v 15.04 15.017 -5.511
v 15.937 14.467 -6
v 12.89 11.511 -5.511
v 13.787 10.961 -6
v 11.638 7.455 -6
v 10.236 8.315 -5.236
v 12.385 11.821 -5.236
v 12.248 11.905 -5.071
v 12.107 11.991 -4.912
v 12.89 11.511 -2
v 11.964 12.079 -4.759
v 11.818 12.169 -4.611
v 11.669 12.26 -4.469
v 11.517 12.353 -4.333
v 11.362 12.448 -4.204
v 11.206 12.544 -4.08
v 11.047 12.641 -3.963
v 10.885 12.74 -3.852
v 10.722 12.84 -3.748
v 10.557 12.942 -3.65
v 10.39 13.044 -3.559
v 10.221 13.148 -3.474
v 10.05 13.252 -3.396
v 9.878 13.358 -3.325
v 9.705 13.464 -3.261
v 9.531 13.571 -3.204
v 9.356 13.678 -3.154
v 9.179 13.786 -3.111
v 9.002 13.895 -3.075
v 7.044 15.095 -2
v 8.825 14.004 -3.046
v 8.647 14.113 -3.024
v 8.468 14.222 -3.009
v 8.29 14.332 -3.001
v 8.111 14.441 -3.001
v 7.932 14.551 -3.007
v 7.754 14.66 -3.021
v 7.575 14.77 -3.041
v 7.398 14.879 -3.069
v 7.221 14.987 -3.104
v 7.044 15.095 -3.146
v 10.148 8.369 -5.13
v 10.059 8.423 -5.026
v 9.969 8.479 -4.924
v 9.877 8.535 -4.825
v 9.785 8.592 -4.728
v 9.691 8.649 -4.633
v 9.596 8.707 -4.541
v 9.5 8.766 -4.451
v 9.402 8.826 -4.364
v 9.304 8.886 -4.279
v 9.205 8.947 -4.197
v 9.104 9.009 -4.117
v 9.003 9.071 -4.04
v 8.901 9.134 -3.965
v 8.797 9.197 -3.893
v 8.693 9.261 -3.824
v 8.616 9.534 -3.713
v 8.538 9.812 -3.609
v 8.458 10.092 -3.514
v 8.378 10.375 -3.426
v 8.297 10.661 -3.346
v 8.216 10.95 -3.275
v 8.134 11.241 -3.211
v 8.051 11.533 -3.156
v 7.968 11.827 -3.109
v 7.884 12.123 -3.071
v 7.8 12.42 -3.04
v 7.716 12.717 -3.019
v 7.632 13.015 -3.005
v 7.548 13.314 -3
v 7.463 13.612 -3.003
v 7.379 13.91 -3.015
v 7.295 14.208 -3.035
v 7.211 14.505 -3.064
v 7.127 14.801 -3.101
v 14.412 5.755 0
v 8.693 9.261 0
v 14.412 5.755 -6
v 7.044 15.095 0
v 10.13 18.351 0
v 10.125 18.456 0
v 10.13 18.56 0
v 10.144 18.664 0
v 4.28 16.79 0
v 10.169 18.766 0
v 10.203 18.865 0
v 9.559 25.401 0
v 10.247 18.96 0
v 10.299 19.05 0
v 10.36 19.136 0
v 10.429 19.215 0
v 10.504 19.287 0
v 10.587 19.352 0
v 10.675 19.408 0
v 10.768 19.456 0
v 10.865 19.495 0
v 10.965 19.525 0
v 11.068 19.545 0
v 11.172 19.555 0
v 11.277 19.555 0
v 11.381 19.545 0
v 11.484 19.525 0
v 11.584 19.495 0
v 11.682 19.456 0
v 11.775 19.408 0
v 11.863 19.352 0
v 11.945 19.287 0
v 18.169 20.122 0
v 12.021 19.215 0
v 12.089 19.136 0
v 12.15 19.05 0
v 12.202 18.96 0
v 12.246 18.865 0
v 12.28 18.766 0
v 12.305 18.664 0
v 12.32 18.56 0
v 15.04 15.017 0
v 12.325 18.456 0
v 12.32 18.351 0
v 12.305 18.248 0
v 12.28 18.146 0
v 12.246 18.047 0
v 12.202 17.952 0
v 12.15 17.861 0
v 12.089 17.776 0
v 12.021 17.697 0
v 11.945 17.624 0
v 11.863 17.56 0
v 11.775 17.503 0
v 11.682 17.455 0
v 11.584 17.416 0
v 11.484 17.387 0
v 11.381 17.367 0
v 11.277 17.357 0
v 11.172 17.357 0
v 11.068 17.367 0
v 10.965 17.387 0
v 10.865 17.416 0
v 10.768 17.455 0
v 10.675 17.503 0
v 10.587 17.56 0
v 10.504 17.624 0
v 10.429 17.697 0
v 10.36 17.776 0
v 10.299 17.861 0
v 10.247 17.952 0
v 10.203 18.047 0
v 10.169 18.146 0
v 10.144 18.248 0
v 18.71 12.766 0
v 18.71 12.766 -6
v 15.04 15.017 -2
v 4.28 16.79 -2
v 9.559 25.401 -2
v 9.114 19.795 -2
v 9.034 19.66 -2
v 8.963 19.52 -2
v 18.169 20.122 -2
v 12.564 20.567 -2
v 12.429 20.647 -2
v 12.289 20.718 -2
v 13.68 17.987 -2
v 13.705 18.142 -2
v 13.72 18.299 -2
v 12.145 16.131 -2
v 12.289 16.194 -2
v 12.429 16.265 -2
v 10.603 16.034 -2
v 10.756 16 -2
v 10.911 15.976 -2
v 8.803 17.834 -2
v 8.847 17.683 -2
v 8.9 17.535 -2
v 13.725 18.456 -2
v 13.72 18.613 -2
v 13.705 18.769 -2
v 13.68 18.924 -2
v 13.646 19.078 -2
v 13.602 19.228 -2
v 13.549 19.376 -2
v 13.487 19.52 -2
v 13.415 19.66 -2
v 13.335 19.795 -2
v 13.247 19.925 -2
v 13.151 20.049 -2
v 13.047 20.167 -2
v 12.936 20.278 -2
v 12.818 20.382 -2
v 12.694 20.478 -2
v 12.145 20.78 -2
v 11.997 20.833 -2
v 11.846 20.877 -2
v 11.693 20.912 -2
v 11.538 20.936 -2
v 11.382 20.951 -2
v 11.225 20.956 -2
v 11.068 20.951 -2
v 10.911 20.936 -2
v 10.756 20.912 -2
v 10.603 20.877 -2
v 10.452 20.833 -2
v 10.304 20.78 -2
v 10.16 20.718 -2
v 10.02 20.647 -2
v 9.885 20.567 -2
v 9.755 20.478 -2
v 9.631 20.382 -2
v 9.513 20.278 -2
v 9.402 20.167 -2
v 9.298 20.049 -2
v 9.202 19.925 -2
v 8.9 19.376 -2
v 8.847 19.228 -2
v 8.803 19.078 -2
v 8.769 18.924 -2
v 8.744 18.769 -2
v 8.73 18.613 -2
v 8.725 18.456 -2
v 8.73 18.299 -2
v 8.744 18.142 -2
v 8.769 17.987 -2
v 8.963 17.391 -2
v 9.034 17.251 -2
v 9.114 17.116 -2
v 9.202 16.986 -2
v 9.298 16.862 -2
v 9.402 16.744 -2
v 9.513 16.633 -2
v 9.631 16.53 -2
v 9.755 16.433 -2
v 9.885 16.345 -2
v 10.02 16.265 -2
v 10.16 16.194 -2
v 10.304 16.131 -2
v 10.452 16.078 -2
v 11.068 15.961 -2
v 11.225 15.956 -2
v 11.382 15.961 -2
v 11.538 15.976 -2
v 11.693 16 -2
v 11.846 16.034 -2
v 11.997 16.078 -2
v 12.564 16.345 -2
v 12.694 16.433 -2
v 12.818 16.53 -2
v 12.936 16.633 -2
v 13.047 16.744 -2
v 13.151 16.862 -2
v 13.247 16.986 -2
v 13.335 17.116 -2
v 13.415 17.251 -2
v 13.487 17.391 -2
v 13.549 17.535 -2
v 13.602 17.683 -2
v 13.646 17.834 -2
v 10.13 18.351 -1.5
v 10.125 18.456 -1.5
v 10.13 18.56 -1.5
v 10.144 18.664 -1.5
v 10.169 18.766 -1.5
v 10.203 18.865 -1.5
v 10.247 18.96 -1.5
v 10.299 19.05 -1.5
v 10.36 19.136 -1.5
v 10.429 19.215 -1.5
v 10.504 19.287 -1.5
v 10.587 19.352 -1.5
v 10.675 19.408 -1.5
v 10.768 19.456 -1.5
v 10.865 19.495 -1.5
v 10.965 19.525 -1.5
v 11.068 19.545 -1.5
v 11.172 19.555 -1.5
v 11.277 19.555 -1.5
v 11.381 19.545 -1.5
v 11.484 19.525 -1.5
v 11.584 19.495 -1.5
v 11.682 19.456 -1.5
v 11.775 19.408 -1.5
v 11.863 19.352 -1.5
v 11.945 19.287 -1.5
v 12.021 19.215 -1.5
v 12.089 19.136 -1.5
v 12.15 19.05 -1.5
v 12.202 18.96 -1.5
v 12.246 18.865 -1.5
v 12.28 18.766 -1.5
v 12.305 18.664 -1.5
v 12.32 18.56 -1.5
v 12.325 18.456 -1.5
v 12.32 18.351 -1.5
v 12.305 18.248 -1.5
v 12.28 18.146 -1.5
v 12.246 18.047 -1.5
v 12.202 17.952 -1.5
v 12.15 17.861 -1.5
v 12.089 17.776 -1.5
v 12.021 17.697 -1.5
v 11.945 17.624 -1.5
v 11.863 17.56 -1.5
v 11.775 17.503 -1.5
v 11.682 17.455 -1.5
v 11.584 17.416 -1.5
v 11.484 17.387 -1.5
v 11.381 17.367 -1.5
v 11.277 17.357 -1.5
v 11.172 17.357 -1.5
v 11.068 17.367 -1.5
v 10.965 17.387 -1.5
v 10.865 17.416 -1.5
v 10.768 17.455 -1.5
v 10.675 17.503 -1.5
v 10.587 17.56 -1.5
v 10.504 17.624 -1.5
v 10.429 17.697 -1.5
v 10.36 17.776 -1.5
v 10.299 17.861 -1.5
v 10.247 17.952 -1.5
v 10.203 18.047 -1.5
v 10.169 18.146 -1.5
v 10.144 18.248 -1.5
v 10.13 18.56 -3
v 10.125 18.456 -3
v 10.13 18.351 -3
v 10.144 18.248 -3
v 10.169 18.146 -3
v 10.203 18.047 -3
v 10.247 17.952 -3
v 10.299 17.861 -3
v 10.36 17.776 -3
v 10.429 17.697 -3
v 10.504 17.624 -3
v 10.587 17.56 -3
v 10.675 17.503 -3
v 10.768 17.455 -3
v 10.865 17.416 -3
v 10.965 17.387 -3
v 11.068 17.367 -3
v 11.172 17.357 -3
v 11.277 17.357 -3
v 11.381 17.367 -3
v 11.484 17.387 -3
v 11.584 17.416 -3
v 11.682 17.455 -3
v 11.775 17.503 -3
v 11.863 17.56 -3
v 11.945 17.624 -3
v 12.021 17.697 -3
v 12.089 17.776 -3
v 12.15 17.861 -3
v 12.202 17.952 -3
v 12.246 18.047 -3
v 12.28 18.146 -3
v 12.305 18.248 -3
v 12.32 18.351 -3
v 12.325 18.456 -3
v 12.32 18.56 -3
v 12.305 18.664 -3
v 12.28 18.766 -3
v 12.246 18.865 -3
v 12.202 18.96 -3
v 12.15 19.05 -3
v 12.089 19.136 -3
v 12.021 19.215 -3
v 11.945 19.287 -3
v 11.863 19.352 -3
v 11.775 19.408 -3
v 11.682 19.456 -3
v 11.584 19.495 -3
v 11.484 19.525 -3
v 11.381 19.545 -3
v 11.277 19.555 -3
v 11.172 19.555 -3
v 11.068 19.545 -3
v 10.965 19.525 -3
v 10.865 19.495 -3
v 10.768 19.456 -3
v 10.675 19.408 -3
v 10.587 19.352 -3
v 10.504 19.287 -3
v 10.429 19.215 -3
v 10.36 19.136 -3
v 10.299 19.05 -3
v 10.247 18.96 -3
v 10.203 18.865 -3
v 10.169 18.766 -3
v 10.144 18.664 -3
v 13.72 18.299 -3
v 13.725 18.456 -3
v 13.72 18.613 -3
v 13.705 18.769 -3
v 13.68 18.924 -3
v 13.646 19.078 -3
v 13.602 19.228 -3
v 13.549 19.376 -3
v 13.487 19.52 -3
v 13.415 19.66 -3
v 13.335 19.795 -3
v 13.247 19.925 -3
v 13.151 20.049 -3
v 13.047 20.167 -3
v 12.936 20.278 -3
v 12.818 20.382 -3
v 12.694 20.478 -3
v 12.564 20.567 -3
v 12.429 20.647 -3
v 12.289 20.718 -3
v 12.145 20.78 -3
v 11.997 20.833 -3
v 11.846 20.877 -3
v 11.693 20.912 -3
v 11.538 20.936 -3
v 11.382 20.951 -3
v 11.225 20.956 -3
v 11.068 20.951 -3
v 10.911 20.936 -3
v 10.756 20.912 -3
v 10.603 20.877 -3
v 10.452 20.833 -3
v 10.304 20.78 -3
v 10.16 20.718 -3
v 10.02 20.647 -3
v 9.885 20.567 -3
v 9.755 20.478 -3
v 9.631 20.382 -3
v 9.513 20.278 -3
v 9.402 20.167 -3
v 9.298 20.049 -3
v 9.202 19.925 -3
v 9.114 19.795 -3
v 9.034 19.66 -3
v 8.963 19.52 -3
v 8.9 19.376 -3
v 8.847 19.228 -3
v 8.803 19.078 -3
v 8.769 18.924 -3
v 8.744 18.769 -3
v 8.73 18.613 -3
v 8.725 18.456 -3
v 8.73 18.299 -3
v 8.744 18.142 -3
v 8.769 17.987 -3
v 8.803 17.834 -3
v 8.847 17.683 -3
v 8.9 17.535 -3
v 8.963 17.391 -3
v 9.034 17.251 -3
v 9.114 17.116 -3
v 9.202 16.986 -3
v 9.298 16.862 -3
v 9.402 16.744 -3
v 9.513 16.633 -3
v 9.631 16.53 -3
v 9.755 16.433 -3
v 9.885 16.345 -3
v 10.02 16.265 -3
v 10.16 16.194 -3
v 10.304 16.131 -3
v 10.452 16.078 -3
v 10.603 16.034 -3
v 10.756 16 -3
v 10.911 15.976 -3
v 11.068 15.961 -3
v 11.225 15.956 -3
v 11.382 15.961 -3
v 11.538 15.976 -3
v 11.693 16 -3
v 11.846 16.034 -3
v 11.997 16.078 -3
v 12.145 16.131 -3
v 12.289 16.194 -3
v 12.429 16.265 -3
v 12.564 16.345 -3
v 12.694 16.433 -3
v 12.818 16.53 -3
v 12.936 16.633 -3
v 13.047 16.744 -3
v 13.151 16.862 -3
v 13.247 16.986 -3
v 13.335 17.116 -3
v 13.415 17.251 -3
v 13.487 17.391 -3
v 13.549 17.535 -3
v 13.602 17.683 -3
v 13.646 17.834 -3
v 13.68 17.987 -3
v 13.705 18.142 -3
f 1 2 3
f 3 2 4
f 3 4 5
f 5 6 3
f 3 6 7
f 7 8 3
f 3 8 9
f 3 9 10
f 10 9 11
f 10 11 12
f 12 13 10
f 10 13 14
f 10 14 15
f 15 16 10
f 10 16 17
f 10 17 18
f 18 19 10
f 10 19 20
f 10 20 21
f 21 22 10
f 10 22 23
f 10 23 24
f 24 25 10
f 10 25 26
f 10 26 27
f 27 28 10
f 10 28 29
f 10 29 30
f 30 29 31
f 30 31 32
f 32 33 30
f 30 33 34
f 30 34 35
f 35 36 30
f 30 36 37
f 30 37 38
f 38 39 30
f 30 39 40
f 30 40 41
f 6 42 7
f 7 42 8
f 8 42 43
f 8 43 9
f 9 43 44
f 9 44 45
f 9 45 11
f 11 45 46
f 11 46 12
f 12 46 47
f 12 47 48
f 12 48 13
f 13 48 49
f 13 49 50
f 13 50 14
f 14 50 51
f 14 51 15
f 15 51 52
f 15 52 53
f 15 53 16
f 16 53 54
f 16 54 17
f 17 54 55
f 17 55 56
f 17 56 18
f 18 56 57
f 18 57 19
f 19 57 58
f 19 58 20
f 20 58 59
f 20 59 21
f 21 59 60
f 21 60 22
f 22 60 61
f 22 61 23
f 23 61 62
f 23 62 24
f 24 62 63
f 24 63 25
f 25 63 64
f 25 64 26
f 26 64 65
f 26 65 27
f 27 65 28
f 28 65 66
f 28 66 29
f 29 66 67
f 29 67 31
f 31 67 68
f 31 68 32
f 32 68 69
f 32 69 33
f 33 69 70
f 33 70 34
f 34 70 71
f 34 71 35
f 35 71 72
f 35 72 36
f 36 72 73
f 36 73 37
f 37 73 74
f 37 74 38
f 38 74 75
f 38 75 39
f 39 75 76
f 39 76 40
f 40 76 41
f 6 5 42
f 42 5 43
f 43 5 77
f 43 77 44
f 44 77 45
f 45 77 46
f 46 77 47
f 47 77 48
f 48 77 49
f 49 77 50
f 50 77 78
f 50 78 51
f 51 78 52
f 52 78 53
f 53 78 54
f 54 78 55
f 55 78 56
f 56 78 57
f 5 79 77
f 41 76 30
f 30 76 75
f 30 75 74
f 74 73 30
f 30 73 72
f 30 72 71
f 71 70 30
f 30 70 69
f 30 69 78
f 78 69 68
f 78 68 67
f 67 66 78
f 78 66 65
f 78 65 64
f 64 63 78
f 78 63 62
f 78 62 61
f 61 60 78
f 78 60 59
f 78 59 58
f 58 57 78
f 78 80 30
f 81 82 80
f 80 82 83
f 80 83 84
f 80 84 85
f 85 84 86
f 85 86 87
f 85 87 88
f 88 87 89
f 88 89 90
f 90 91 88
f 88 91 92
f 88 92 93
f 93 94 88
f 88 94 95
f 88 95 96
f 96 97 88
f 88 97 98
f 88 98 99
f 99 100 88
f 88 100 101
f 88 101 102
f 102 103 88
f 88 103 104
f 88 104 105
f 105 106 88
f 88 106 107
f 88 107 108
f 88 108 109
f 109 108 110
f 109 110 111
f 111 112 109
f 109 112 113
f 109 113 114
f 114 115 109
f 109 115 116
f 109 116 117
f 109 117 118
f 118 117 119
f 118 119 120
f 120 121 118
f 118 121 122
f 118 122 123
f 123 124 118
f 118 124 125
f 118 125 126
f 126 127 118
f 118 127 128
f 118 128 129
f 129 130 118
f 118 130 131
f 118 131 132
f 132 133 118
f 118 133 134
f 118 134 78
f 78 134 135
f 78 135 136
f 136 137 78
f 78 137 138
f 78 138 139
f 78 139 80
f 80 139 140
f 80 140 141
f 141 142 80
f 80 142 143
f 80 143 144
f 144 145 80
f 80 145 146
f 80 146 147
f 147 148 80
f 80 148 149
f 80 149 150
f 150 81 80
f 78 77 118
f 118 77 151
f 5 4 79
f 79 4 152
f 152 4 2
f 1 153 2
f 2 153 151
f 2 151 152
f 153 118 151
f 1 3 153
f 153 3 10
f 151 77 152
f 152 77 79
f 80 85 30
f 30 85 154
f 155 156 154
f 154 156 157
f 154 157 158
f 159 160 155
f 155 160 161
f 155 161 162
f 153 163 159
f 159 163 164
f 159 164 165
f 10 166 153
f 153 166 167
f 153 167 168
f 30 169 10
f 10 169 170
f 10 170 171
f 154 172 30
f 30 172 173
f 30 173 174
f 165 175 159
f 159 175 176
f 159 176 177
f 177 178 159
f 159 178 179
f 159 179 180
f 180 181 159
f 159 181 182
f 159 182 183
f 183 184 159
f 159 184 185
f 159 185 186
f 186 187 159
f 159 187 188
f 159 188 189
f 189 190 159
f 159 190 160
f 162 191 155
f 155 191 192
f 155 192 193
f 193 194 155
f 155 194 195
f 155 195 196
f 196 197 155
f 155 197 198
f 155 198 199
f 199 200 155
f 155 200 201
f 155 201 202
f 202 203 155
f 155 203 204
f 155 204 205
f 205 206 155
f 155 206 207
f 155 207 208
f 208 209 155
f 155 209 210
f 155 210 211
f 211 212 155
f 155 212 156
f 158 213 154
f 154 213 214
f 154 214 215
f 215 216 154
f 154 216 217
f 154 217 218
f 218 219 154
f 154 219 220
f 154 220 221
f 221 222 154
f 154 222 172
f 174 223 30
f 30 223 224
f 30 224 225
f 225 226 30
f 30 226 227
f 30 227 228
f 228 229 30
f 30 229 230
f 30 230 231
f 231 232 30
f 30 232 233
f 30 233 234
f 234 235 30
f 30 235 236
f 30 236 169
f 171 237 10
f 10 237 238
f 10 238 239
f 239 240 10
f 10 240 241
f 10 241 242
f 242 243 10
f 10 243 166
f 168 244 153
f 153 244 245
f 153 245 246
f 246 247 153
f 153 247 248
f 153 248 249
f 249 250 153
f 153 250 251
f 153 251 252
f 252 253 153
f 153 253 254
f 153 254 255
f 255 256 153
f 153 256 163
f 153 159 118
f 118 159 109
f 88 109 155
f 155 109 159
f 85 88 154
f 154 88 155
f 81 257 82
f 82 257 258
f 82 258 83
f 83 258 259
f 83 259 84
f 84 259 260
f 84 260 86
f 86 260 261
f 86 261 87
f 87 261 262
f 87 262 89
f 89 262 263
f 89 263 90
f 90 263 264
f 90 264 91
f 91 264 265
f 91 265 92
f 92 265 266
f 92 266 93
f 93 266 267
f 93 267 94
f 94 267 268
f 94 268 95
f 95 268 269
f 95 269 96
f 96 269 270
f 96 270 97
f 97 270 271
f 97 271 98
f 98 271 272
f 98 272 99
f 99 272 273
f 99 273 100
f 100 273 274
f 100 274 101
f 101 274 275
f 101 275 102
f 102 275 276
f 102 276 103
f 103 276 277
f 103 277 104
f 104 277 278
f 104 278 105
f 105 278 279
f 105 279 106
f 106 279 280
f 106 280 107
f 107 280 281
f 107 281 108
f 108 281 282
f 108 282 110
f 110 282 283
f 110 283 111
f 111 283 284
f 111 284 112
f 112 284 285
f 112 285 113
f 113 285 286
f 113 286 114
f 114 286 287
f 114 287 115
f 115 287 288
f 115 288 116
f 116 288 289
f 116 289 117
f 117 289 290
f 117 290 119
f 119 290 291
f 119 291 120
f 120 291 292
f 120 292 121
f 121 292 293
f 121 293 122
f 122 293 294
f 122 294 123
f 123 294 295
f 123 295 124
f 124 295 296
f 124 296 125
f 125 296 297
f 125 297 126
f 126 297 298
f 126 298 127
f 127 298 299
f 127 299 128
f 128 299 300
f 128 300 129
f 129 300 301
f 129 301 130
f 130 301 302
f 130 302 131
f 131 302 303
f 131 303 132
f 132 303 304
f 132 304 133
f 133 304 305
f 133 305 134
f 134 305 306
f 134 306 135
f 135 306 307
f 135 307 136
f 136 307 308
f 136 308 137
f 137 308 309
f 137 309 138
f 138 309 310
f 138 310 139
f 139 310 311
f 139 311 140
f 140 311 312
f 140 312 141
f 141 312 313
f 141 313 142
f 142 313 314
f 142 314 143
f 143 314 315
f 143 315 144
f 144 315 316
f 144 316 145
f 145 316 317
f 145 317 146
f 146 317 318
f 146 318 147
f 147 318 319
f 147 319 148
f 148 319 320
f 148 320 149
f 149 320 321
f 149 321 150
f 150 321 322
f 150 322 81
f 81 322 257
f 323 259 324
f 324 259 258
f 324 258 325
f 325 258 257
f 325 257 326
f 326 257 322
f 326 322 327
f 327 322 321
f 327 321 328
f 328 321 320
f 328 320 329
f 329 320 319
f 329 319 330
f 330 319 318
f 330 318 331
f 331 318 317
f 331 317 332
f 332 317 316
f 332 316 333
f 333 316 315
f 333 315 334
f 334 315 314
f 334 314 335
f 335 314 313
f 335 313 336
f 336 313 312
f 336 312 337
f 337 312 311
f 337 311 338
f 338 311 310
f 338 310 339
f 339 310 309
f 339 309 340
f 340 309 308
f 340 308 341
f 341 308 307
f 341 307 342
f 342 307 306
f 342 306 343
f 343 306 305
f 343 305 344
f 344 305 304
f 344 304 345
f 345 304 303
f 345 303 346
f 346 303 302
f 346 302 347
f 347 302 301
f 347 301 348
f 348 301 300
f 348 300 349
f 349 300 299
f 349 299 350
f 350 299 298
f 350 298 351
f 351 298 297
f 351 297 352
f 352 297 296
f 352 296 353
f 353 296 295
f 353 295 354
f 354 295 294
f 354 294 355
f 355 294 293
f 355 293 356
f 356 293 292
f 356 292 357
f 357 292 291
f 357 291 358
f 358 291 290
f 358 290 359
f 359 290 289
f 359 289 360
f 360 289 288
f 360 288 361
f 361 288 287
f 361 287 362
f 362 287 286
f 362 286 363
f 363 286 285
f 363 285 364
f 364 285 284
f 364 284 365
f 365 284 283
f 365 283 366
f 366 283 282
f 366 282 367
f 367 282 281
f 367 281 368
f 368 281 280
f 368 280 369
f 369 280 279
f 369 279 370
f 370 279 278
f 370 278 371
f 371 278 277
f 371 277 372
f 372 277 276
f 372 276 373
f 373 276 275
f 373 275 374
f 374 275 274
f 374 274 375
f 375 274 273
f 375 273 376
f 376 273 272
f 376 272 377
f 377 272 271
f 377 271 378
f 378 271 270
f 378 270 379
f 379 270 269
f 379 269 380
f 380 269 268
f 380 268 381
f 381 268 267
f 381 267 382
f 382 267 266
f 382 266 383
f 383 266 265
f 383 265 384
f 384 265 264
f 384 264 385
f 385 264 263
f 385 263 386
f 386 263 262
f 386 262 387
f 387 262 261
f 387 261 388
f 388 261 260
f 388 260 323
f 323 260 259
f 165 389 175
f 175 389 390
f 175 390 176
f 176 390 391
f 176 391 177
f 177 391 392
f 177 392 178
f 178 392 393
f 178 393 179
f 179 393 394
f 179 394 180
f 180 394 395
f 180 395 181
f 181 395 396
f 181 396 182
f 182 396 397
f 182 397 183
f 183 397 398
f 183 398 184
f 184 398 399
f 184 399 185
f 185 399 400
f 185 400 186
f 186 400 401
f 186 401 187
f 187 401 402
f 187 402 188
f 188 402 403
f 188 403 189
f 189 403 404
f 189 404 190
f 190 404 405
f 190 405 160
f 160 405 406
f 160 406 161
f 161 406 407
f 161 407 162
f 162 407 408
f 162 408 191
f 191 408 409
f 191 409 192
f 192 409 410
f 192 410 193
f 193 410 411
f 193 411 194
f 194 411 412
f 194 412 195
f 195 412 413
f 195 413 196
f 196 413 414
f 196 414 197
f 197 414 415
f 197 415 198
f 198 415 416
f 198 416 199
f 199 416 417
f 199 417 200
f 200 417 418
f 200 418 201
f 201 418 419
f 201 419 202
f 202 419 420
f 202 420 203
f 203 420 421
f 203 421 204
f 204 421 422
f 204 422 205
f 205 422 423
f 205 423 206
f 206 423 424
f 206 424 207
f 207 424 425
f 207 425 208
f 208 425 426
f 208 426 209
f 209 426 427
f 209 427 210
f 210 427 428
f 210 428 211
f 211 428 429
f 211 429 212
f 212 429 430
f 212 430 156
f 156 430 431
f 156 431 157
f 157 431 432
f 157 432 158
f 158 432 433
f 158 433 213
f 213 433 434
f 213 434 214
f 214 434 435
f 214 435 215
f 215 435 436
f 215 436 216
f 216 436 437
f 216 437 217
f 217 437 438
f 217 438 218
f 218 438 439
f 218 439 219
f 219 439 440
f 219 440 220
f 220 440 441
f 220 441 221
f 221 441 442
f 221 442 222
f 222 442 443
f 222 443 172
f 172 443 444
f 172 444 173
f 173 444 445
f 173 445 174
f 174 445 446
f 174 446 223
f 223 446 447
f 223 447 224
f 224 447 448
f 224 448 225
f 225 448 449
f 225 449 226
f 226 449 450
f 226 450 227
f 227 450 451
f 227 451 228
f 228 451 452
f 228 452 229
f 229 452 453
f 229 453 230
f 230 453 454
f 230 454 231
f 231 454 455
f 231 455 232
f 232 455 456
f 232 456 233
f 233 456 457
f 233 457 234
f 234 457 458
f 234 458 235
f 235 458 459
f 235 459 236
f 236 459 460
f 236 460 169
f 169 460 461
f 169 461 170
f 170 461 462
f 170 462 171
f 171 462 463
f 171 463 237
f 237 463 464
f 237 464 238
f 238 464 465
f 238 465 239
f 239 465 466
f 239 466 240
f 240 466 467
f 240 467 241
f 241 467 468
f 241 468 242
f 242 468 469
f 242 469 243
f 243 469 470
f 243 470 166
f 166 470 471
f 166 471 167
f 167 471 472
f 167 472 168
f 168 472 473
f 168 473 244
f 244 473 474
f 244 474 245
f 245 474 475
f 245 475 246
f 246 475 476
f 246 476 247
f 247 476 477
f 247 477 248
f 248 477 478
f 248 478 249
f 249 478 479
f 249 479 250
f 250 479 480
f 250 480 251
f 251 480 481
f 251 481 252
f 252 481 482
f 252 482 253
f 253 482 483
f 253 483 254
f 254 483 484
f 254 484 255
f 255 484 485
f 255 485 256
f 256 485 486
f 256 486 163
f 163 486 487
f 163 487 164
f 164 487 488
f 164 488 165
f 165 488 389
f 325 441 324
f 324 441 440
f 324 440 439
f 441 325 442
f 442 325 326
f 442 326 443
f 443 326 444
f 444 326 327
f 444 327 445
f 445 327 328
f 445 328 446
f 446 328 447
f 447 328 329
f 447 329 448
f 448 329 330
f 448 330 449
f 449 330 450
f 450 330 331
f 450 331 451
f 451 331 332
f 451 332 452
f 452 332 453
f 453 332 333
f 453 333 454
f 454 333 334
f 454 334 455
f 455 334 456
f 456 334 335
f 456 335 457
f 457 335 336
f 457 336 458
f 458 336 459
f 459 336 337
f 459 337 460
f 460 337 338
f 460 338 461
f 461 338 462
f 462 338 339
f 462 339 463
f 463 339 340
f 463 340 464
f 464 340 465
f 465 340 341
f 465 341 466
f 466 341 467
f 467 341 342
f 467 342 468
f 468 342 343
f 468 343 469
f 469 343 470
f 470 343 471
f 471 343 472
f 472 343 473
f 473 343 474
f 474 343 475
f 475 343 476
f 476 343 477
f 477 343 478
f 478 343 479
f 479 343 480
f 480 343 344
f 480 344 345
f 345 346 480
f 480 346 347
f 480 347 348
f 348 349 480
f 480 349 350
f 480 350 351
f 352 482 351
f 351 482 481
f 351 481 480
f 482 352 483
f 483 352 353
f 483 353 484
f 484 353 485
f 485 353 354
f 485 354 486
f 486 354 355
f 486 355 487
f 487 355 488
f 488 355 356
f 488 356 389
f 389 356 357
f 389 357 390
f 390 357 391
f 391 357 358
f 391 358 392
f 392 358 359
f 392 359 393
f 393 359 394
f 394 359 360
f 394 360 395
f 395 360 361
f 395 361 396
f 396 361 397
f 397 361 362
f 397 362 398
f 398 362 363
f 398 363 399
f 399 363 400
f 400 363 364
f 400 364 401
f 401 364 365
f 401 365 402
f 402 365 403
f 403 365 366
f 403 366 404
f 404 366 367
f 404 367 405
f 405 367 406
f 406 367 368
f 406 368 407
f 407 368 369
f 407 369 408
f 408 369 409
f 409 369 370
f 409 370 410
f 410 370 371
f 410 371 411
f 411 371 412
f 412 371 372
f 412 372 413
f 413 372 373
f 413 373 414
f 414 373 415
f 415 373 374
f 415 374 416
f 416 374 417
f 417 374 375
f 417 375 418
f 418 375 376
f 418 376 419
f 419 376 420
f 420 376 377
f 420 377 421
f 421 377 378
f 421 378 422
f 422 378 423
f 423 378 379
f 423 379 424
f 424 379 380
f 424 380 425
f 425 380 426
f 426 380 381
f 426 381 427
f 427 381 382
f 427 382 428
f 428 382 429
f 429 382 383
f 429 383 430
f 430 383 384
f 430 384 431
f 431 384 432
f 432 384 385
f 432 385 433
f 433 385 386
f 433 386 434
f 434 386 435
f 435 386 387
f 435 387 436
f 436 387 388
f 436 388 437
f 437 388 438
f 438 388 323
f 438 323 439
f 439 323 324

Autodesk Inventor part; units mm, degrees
ref_plane "YZ Plane" through (0, 0, 0) normal (1, 0, 0) x (0, 1, 0)
ref_plane "XZ Plane" through (0, 0, 0) normal (0, 1, 0) x (-1, 0, 0)
sketch "Skizze1" plane through (0, 0, 0) normal (0, 0, 1) x (1, 0, 0)
  circle A0 centre (11.2246, 18.4558) radius 0.3325 construction
  circle A1 centre (11.2246, 18.4558) radius 1.1
  circle A2 centre (11.2246, 18.4558) radius 2.5
  point P0 (0, 0)
  dimension "d0" = 2.2
  dimension "d1" = 5
ref_plane "Arbeitsebene1" through (-2.597, -2.44, -3) normal (0, 0, -1) x (0, 1, 0)
extrude "Extrusion1" add sketch "Skizze1" against normal up to surface (3 mm away)
sketch "Skizze2" plane through (11.2246, 18.4558, 0) normal (0, 0, 1) x (1, 0, 0)
  line L0 (0, 0) -> (-2.8913, -4.716) construction
  line L1 (-2.8913, -4.716) -> (3.5184, 5.7389) construction
  line L2 (0, 0) -> (3.8461, -2.358) construction
  line L3 (-6.9448, -1.6658) -> (-1.6658, 6.9448)
  line L4 (-1.6658, 6.9448) -> (6.9448, 1.6658)
  line L5 (6.9448, 1.6658) -> (1.6658, -6.9448)
  line L6 (1.6658, -6.9448) -> (-6.9448, -1.6658)
  line L7 (-6.9448, -1.6658) -> (6.9448, 1.6658) construction
  line L8 (-1.6658, 6.9448) -> (1.6658, -6.9448) construction
  point P0 (-11.2246, -18.4558)
  dimension "d4" = 10.1
  dimension "d5" = 10.1
extrude "Extrusion2" add sketch "Skizze2" against normal blind 2
sketch "Skizze3" plane through (0, 0, 0) normal (0, 0, 1) x (1, 0, 0)
  line L0 (4.2798, 16.79) -> (9.5588, 25.4006) projected
  line L1 (12.8904, 11.511) -> (4.2798, 16.79) projected
  line L2 (18.1694, 20.1216) -> (12.8904, 11.511) projected
  line L3 (9.5588, 25.4006) -> (18.1694, 20.1216) projected
  line L4 (4.8948, 11.5894) -> (14.4118, 5.7548)
  line L5 (14.4118, 5.7548) -> (18.7104, 12.7664)
  line L6 (18.7104, 12.7664) -> (15.0398, 15.0168)
  line L7 (-1.5402, 15.5346) -> (18.7104, 12.7664) construction
  line L8 (14.4118, 5.7548) -> (2.7585, 22.5462) construction
  line L9 (4.8948, 11.5894) -> (7.0442, 15.0952)
  line L10 (12.8904, 11.511) -> (4.2798, 16.79) projected
  line L11 (7.0442, 15.0952) -> (12.8904, 11.511)
  line L12 (12.8904, 11.511) -> (15.0398, 15.0168)
  line L13 (18.1694, 20.1216) -> (12.8904, 11.511) projected
  point P0 (0, 0)
  point P1 (8.5851, 14.1505)
extrude "Extrusion3" add sketch "Skizze3" against normal blind 6 contours L1 L2 L6 L5 L4 L9
sketch "Skizze4" plane through (4.8948, 11.5894, -6) normal (-0.5227, -0.8525, 0) x (0.8525, -0.5227, 0)
  line L0 (-1.036, 2.1441) -> (1.7865, 3.0085) projected
  line L1 (0, 6) -> (11.1631, 6) projected
  line L2 (0, 6) -> (0, 0) projected
  line L3 (11.1631, 0) -> (0, 0) projected
  line L4 (11.1631, 6) -> (11.1631, 0) projected
  line L5 (0.7075, 3) -> (2.9075, 3) projected
  line L6 (1.3376, -2.7865) -> (1.3376, -9.7615) projected
  ellipse E0 centre (1.3376, -6.274) end of major axis (1.3376, 3) minor radius 7.5665
  point P0 (1.8845, 6)
extrude "Extrusion4" cut sketch "Skizze4" against normal up to surface (8.2244 mm away) contours L2 E0 L0 | L2 L3 E0 | L0 E0 L3 L2
sketch "Skizze5" plane through (0, 0, 0) normal (0, 0, 1) x (1, 0, 0)
  line L0 (4.2798, 16.79) -> (9.5588, 25.4006) projected
  line L1 (7.0442, 15.0952) -> (4.2798, 16.79) projected
  line L2 (7.0442, 15.0952) -> (4.8948, 11.5894) projected
  line L3 (4.8948, 11.5894) -> (14.4118, 5.7548) projected
  line L4 (14.4118, 5.7548) -> (18.7104, 12.7664) projected
  line L5 (18.7104, 12.7664) -> (15.0398, 15.0168) projected
  line L6 (18.1694, 20.1216) -> (15.0398, 15.0168) projected
  line L7 (9.5588, 25.4006) -> (18.1694, 20.1216) projected
  line L8 (7.0442, 15.0952) -> (4.8948, 11.5894) projected
  line L9 (7.0442, 15.0952) -> (8.6934, 9.2606)
  line L10 (10.7856, 7.9779) -> (4.8948, 11.5894) projected
  point P0 (0, 0)
extrude "Extrusion5" cut sketch "Skizze5" against normal blind 6 contours L9 L3 L2
chamfer "Fase1" distance 1 angle 45 1 edges at (12.9349, 11.4837, -6)
sketch "Skizze6" plane through (14.4118, 5.7548, -6) normal (-0.5227, -0.8525, 0) x (0.8525, -0.5227, 0)
  ellipse E0 centre (-9.8255, -6.274) end of major axis (-9.8255, -15.548) minor radius 7.5665 (-4.8984, 0.7642) -> (-6.7074, 2.1759) ccw projected
  ellipse E1 centre (-9.8255, -6.274) end of major axis (-9.8255, -15.548) minor radius 7.5665 (-6.7074, 2.1759) -> (-11.1631, 2.8539) ccw projected
  point P0 (-9.2786, 6)
  point P1 (-3.2534, 0)
sketch "Skizze7" plane through (11.2246, 18.4558, -3) normal (0, 0, -1) x (-1, 0, 0)
  circle A0 centre (0, 0) radius 1.1 projected
  point P0 (11.2246, -18.4558)
extrude "Extrusion6" cut sketch "Skizze7" against normal blind 10
properties part number "thumb_phalanx_plate" material "Nylon 6/6"
